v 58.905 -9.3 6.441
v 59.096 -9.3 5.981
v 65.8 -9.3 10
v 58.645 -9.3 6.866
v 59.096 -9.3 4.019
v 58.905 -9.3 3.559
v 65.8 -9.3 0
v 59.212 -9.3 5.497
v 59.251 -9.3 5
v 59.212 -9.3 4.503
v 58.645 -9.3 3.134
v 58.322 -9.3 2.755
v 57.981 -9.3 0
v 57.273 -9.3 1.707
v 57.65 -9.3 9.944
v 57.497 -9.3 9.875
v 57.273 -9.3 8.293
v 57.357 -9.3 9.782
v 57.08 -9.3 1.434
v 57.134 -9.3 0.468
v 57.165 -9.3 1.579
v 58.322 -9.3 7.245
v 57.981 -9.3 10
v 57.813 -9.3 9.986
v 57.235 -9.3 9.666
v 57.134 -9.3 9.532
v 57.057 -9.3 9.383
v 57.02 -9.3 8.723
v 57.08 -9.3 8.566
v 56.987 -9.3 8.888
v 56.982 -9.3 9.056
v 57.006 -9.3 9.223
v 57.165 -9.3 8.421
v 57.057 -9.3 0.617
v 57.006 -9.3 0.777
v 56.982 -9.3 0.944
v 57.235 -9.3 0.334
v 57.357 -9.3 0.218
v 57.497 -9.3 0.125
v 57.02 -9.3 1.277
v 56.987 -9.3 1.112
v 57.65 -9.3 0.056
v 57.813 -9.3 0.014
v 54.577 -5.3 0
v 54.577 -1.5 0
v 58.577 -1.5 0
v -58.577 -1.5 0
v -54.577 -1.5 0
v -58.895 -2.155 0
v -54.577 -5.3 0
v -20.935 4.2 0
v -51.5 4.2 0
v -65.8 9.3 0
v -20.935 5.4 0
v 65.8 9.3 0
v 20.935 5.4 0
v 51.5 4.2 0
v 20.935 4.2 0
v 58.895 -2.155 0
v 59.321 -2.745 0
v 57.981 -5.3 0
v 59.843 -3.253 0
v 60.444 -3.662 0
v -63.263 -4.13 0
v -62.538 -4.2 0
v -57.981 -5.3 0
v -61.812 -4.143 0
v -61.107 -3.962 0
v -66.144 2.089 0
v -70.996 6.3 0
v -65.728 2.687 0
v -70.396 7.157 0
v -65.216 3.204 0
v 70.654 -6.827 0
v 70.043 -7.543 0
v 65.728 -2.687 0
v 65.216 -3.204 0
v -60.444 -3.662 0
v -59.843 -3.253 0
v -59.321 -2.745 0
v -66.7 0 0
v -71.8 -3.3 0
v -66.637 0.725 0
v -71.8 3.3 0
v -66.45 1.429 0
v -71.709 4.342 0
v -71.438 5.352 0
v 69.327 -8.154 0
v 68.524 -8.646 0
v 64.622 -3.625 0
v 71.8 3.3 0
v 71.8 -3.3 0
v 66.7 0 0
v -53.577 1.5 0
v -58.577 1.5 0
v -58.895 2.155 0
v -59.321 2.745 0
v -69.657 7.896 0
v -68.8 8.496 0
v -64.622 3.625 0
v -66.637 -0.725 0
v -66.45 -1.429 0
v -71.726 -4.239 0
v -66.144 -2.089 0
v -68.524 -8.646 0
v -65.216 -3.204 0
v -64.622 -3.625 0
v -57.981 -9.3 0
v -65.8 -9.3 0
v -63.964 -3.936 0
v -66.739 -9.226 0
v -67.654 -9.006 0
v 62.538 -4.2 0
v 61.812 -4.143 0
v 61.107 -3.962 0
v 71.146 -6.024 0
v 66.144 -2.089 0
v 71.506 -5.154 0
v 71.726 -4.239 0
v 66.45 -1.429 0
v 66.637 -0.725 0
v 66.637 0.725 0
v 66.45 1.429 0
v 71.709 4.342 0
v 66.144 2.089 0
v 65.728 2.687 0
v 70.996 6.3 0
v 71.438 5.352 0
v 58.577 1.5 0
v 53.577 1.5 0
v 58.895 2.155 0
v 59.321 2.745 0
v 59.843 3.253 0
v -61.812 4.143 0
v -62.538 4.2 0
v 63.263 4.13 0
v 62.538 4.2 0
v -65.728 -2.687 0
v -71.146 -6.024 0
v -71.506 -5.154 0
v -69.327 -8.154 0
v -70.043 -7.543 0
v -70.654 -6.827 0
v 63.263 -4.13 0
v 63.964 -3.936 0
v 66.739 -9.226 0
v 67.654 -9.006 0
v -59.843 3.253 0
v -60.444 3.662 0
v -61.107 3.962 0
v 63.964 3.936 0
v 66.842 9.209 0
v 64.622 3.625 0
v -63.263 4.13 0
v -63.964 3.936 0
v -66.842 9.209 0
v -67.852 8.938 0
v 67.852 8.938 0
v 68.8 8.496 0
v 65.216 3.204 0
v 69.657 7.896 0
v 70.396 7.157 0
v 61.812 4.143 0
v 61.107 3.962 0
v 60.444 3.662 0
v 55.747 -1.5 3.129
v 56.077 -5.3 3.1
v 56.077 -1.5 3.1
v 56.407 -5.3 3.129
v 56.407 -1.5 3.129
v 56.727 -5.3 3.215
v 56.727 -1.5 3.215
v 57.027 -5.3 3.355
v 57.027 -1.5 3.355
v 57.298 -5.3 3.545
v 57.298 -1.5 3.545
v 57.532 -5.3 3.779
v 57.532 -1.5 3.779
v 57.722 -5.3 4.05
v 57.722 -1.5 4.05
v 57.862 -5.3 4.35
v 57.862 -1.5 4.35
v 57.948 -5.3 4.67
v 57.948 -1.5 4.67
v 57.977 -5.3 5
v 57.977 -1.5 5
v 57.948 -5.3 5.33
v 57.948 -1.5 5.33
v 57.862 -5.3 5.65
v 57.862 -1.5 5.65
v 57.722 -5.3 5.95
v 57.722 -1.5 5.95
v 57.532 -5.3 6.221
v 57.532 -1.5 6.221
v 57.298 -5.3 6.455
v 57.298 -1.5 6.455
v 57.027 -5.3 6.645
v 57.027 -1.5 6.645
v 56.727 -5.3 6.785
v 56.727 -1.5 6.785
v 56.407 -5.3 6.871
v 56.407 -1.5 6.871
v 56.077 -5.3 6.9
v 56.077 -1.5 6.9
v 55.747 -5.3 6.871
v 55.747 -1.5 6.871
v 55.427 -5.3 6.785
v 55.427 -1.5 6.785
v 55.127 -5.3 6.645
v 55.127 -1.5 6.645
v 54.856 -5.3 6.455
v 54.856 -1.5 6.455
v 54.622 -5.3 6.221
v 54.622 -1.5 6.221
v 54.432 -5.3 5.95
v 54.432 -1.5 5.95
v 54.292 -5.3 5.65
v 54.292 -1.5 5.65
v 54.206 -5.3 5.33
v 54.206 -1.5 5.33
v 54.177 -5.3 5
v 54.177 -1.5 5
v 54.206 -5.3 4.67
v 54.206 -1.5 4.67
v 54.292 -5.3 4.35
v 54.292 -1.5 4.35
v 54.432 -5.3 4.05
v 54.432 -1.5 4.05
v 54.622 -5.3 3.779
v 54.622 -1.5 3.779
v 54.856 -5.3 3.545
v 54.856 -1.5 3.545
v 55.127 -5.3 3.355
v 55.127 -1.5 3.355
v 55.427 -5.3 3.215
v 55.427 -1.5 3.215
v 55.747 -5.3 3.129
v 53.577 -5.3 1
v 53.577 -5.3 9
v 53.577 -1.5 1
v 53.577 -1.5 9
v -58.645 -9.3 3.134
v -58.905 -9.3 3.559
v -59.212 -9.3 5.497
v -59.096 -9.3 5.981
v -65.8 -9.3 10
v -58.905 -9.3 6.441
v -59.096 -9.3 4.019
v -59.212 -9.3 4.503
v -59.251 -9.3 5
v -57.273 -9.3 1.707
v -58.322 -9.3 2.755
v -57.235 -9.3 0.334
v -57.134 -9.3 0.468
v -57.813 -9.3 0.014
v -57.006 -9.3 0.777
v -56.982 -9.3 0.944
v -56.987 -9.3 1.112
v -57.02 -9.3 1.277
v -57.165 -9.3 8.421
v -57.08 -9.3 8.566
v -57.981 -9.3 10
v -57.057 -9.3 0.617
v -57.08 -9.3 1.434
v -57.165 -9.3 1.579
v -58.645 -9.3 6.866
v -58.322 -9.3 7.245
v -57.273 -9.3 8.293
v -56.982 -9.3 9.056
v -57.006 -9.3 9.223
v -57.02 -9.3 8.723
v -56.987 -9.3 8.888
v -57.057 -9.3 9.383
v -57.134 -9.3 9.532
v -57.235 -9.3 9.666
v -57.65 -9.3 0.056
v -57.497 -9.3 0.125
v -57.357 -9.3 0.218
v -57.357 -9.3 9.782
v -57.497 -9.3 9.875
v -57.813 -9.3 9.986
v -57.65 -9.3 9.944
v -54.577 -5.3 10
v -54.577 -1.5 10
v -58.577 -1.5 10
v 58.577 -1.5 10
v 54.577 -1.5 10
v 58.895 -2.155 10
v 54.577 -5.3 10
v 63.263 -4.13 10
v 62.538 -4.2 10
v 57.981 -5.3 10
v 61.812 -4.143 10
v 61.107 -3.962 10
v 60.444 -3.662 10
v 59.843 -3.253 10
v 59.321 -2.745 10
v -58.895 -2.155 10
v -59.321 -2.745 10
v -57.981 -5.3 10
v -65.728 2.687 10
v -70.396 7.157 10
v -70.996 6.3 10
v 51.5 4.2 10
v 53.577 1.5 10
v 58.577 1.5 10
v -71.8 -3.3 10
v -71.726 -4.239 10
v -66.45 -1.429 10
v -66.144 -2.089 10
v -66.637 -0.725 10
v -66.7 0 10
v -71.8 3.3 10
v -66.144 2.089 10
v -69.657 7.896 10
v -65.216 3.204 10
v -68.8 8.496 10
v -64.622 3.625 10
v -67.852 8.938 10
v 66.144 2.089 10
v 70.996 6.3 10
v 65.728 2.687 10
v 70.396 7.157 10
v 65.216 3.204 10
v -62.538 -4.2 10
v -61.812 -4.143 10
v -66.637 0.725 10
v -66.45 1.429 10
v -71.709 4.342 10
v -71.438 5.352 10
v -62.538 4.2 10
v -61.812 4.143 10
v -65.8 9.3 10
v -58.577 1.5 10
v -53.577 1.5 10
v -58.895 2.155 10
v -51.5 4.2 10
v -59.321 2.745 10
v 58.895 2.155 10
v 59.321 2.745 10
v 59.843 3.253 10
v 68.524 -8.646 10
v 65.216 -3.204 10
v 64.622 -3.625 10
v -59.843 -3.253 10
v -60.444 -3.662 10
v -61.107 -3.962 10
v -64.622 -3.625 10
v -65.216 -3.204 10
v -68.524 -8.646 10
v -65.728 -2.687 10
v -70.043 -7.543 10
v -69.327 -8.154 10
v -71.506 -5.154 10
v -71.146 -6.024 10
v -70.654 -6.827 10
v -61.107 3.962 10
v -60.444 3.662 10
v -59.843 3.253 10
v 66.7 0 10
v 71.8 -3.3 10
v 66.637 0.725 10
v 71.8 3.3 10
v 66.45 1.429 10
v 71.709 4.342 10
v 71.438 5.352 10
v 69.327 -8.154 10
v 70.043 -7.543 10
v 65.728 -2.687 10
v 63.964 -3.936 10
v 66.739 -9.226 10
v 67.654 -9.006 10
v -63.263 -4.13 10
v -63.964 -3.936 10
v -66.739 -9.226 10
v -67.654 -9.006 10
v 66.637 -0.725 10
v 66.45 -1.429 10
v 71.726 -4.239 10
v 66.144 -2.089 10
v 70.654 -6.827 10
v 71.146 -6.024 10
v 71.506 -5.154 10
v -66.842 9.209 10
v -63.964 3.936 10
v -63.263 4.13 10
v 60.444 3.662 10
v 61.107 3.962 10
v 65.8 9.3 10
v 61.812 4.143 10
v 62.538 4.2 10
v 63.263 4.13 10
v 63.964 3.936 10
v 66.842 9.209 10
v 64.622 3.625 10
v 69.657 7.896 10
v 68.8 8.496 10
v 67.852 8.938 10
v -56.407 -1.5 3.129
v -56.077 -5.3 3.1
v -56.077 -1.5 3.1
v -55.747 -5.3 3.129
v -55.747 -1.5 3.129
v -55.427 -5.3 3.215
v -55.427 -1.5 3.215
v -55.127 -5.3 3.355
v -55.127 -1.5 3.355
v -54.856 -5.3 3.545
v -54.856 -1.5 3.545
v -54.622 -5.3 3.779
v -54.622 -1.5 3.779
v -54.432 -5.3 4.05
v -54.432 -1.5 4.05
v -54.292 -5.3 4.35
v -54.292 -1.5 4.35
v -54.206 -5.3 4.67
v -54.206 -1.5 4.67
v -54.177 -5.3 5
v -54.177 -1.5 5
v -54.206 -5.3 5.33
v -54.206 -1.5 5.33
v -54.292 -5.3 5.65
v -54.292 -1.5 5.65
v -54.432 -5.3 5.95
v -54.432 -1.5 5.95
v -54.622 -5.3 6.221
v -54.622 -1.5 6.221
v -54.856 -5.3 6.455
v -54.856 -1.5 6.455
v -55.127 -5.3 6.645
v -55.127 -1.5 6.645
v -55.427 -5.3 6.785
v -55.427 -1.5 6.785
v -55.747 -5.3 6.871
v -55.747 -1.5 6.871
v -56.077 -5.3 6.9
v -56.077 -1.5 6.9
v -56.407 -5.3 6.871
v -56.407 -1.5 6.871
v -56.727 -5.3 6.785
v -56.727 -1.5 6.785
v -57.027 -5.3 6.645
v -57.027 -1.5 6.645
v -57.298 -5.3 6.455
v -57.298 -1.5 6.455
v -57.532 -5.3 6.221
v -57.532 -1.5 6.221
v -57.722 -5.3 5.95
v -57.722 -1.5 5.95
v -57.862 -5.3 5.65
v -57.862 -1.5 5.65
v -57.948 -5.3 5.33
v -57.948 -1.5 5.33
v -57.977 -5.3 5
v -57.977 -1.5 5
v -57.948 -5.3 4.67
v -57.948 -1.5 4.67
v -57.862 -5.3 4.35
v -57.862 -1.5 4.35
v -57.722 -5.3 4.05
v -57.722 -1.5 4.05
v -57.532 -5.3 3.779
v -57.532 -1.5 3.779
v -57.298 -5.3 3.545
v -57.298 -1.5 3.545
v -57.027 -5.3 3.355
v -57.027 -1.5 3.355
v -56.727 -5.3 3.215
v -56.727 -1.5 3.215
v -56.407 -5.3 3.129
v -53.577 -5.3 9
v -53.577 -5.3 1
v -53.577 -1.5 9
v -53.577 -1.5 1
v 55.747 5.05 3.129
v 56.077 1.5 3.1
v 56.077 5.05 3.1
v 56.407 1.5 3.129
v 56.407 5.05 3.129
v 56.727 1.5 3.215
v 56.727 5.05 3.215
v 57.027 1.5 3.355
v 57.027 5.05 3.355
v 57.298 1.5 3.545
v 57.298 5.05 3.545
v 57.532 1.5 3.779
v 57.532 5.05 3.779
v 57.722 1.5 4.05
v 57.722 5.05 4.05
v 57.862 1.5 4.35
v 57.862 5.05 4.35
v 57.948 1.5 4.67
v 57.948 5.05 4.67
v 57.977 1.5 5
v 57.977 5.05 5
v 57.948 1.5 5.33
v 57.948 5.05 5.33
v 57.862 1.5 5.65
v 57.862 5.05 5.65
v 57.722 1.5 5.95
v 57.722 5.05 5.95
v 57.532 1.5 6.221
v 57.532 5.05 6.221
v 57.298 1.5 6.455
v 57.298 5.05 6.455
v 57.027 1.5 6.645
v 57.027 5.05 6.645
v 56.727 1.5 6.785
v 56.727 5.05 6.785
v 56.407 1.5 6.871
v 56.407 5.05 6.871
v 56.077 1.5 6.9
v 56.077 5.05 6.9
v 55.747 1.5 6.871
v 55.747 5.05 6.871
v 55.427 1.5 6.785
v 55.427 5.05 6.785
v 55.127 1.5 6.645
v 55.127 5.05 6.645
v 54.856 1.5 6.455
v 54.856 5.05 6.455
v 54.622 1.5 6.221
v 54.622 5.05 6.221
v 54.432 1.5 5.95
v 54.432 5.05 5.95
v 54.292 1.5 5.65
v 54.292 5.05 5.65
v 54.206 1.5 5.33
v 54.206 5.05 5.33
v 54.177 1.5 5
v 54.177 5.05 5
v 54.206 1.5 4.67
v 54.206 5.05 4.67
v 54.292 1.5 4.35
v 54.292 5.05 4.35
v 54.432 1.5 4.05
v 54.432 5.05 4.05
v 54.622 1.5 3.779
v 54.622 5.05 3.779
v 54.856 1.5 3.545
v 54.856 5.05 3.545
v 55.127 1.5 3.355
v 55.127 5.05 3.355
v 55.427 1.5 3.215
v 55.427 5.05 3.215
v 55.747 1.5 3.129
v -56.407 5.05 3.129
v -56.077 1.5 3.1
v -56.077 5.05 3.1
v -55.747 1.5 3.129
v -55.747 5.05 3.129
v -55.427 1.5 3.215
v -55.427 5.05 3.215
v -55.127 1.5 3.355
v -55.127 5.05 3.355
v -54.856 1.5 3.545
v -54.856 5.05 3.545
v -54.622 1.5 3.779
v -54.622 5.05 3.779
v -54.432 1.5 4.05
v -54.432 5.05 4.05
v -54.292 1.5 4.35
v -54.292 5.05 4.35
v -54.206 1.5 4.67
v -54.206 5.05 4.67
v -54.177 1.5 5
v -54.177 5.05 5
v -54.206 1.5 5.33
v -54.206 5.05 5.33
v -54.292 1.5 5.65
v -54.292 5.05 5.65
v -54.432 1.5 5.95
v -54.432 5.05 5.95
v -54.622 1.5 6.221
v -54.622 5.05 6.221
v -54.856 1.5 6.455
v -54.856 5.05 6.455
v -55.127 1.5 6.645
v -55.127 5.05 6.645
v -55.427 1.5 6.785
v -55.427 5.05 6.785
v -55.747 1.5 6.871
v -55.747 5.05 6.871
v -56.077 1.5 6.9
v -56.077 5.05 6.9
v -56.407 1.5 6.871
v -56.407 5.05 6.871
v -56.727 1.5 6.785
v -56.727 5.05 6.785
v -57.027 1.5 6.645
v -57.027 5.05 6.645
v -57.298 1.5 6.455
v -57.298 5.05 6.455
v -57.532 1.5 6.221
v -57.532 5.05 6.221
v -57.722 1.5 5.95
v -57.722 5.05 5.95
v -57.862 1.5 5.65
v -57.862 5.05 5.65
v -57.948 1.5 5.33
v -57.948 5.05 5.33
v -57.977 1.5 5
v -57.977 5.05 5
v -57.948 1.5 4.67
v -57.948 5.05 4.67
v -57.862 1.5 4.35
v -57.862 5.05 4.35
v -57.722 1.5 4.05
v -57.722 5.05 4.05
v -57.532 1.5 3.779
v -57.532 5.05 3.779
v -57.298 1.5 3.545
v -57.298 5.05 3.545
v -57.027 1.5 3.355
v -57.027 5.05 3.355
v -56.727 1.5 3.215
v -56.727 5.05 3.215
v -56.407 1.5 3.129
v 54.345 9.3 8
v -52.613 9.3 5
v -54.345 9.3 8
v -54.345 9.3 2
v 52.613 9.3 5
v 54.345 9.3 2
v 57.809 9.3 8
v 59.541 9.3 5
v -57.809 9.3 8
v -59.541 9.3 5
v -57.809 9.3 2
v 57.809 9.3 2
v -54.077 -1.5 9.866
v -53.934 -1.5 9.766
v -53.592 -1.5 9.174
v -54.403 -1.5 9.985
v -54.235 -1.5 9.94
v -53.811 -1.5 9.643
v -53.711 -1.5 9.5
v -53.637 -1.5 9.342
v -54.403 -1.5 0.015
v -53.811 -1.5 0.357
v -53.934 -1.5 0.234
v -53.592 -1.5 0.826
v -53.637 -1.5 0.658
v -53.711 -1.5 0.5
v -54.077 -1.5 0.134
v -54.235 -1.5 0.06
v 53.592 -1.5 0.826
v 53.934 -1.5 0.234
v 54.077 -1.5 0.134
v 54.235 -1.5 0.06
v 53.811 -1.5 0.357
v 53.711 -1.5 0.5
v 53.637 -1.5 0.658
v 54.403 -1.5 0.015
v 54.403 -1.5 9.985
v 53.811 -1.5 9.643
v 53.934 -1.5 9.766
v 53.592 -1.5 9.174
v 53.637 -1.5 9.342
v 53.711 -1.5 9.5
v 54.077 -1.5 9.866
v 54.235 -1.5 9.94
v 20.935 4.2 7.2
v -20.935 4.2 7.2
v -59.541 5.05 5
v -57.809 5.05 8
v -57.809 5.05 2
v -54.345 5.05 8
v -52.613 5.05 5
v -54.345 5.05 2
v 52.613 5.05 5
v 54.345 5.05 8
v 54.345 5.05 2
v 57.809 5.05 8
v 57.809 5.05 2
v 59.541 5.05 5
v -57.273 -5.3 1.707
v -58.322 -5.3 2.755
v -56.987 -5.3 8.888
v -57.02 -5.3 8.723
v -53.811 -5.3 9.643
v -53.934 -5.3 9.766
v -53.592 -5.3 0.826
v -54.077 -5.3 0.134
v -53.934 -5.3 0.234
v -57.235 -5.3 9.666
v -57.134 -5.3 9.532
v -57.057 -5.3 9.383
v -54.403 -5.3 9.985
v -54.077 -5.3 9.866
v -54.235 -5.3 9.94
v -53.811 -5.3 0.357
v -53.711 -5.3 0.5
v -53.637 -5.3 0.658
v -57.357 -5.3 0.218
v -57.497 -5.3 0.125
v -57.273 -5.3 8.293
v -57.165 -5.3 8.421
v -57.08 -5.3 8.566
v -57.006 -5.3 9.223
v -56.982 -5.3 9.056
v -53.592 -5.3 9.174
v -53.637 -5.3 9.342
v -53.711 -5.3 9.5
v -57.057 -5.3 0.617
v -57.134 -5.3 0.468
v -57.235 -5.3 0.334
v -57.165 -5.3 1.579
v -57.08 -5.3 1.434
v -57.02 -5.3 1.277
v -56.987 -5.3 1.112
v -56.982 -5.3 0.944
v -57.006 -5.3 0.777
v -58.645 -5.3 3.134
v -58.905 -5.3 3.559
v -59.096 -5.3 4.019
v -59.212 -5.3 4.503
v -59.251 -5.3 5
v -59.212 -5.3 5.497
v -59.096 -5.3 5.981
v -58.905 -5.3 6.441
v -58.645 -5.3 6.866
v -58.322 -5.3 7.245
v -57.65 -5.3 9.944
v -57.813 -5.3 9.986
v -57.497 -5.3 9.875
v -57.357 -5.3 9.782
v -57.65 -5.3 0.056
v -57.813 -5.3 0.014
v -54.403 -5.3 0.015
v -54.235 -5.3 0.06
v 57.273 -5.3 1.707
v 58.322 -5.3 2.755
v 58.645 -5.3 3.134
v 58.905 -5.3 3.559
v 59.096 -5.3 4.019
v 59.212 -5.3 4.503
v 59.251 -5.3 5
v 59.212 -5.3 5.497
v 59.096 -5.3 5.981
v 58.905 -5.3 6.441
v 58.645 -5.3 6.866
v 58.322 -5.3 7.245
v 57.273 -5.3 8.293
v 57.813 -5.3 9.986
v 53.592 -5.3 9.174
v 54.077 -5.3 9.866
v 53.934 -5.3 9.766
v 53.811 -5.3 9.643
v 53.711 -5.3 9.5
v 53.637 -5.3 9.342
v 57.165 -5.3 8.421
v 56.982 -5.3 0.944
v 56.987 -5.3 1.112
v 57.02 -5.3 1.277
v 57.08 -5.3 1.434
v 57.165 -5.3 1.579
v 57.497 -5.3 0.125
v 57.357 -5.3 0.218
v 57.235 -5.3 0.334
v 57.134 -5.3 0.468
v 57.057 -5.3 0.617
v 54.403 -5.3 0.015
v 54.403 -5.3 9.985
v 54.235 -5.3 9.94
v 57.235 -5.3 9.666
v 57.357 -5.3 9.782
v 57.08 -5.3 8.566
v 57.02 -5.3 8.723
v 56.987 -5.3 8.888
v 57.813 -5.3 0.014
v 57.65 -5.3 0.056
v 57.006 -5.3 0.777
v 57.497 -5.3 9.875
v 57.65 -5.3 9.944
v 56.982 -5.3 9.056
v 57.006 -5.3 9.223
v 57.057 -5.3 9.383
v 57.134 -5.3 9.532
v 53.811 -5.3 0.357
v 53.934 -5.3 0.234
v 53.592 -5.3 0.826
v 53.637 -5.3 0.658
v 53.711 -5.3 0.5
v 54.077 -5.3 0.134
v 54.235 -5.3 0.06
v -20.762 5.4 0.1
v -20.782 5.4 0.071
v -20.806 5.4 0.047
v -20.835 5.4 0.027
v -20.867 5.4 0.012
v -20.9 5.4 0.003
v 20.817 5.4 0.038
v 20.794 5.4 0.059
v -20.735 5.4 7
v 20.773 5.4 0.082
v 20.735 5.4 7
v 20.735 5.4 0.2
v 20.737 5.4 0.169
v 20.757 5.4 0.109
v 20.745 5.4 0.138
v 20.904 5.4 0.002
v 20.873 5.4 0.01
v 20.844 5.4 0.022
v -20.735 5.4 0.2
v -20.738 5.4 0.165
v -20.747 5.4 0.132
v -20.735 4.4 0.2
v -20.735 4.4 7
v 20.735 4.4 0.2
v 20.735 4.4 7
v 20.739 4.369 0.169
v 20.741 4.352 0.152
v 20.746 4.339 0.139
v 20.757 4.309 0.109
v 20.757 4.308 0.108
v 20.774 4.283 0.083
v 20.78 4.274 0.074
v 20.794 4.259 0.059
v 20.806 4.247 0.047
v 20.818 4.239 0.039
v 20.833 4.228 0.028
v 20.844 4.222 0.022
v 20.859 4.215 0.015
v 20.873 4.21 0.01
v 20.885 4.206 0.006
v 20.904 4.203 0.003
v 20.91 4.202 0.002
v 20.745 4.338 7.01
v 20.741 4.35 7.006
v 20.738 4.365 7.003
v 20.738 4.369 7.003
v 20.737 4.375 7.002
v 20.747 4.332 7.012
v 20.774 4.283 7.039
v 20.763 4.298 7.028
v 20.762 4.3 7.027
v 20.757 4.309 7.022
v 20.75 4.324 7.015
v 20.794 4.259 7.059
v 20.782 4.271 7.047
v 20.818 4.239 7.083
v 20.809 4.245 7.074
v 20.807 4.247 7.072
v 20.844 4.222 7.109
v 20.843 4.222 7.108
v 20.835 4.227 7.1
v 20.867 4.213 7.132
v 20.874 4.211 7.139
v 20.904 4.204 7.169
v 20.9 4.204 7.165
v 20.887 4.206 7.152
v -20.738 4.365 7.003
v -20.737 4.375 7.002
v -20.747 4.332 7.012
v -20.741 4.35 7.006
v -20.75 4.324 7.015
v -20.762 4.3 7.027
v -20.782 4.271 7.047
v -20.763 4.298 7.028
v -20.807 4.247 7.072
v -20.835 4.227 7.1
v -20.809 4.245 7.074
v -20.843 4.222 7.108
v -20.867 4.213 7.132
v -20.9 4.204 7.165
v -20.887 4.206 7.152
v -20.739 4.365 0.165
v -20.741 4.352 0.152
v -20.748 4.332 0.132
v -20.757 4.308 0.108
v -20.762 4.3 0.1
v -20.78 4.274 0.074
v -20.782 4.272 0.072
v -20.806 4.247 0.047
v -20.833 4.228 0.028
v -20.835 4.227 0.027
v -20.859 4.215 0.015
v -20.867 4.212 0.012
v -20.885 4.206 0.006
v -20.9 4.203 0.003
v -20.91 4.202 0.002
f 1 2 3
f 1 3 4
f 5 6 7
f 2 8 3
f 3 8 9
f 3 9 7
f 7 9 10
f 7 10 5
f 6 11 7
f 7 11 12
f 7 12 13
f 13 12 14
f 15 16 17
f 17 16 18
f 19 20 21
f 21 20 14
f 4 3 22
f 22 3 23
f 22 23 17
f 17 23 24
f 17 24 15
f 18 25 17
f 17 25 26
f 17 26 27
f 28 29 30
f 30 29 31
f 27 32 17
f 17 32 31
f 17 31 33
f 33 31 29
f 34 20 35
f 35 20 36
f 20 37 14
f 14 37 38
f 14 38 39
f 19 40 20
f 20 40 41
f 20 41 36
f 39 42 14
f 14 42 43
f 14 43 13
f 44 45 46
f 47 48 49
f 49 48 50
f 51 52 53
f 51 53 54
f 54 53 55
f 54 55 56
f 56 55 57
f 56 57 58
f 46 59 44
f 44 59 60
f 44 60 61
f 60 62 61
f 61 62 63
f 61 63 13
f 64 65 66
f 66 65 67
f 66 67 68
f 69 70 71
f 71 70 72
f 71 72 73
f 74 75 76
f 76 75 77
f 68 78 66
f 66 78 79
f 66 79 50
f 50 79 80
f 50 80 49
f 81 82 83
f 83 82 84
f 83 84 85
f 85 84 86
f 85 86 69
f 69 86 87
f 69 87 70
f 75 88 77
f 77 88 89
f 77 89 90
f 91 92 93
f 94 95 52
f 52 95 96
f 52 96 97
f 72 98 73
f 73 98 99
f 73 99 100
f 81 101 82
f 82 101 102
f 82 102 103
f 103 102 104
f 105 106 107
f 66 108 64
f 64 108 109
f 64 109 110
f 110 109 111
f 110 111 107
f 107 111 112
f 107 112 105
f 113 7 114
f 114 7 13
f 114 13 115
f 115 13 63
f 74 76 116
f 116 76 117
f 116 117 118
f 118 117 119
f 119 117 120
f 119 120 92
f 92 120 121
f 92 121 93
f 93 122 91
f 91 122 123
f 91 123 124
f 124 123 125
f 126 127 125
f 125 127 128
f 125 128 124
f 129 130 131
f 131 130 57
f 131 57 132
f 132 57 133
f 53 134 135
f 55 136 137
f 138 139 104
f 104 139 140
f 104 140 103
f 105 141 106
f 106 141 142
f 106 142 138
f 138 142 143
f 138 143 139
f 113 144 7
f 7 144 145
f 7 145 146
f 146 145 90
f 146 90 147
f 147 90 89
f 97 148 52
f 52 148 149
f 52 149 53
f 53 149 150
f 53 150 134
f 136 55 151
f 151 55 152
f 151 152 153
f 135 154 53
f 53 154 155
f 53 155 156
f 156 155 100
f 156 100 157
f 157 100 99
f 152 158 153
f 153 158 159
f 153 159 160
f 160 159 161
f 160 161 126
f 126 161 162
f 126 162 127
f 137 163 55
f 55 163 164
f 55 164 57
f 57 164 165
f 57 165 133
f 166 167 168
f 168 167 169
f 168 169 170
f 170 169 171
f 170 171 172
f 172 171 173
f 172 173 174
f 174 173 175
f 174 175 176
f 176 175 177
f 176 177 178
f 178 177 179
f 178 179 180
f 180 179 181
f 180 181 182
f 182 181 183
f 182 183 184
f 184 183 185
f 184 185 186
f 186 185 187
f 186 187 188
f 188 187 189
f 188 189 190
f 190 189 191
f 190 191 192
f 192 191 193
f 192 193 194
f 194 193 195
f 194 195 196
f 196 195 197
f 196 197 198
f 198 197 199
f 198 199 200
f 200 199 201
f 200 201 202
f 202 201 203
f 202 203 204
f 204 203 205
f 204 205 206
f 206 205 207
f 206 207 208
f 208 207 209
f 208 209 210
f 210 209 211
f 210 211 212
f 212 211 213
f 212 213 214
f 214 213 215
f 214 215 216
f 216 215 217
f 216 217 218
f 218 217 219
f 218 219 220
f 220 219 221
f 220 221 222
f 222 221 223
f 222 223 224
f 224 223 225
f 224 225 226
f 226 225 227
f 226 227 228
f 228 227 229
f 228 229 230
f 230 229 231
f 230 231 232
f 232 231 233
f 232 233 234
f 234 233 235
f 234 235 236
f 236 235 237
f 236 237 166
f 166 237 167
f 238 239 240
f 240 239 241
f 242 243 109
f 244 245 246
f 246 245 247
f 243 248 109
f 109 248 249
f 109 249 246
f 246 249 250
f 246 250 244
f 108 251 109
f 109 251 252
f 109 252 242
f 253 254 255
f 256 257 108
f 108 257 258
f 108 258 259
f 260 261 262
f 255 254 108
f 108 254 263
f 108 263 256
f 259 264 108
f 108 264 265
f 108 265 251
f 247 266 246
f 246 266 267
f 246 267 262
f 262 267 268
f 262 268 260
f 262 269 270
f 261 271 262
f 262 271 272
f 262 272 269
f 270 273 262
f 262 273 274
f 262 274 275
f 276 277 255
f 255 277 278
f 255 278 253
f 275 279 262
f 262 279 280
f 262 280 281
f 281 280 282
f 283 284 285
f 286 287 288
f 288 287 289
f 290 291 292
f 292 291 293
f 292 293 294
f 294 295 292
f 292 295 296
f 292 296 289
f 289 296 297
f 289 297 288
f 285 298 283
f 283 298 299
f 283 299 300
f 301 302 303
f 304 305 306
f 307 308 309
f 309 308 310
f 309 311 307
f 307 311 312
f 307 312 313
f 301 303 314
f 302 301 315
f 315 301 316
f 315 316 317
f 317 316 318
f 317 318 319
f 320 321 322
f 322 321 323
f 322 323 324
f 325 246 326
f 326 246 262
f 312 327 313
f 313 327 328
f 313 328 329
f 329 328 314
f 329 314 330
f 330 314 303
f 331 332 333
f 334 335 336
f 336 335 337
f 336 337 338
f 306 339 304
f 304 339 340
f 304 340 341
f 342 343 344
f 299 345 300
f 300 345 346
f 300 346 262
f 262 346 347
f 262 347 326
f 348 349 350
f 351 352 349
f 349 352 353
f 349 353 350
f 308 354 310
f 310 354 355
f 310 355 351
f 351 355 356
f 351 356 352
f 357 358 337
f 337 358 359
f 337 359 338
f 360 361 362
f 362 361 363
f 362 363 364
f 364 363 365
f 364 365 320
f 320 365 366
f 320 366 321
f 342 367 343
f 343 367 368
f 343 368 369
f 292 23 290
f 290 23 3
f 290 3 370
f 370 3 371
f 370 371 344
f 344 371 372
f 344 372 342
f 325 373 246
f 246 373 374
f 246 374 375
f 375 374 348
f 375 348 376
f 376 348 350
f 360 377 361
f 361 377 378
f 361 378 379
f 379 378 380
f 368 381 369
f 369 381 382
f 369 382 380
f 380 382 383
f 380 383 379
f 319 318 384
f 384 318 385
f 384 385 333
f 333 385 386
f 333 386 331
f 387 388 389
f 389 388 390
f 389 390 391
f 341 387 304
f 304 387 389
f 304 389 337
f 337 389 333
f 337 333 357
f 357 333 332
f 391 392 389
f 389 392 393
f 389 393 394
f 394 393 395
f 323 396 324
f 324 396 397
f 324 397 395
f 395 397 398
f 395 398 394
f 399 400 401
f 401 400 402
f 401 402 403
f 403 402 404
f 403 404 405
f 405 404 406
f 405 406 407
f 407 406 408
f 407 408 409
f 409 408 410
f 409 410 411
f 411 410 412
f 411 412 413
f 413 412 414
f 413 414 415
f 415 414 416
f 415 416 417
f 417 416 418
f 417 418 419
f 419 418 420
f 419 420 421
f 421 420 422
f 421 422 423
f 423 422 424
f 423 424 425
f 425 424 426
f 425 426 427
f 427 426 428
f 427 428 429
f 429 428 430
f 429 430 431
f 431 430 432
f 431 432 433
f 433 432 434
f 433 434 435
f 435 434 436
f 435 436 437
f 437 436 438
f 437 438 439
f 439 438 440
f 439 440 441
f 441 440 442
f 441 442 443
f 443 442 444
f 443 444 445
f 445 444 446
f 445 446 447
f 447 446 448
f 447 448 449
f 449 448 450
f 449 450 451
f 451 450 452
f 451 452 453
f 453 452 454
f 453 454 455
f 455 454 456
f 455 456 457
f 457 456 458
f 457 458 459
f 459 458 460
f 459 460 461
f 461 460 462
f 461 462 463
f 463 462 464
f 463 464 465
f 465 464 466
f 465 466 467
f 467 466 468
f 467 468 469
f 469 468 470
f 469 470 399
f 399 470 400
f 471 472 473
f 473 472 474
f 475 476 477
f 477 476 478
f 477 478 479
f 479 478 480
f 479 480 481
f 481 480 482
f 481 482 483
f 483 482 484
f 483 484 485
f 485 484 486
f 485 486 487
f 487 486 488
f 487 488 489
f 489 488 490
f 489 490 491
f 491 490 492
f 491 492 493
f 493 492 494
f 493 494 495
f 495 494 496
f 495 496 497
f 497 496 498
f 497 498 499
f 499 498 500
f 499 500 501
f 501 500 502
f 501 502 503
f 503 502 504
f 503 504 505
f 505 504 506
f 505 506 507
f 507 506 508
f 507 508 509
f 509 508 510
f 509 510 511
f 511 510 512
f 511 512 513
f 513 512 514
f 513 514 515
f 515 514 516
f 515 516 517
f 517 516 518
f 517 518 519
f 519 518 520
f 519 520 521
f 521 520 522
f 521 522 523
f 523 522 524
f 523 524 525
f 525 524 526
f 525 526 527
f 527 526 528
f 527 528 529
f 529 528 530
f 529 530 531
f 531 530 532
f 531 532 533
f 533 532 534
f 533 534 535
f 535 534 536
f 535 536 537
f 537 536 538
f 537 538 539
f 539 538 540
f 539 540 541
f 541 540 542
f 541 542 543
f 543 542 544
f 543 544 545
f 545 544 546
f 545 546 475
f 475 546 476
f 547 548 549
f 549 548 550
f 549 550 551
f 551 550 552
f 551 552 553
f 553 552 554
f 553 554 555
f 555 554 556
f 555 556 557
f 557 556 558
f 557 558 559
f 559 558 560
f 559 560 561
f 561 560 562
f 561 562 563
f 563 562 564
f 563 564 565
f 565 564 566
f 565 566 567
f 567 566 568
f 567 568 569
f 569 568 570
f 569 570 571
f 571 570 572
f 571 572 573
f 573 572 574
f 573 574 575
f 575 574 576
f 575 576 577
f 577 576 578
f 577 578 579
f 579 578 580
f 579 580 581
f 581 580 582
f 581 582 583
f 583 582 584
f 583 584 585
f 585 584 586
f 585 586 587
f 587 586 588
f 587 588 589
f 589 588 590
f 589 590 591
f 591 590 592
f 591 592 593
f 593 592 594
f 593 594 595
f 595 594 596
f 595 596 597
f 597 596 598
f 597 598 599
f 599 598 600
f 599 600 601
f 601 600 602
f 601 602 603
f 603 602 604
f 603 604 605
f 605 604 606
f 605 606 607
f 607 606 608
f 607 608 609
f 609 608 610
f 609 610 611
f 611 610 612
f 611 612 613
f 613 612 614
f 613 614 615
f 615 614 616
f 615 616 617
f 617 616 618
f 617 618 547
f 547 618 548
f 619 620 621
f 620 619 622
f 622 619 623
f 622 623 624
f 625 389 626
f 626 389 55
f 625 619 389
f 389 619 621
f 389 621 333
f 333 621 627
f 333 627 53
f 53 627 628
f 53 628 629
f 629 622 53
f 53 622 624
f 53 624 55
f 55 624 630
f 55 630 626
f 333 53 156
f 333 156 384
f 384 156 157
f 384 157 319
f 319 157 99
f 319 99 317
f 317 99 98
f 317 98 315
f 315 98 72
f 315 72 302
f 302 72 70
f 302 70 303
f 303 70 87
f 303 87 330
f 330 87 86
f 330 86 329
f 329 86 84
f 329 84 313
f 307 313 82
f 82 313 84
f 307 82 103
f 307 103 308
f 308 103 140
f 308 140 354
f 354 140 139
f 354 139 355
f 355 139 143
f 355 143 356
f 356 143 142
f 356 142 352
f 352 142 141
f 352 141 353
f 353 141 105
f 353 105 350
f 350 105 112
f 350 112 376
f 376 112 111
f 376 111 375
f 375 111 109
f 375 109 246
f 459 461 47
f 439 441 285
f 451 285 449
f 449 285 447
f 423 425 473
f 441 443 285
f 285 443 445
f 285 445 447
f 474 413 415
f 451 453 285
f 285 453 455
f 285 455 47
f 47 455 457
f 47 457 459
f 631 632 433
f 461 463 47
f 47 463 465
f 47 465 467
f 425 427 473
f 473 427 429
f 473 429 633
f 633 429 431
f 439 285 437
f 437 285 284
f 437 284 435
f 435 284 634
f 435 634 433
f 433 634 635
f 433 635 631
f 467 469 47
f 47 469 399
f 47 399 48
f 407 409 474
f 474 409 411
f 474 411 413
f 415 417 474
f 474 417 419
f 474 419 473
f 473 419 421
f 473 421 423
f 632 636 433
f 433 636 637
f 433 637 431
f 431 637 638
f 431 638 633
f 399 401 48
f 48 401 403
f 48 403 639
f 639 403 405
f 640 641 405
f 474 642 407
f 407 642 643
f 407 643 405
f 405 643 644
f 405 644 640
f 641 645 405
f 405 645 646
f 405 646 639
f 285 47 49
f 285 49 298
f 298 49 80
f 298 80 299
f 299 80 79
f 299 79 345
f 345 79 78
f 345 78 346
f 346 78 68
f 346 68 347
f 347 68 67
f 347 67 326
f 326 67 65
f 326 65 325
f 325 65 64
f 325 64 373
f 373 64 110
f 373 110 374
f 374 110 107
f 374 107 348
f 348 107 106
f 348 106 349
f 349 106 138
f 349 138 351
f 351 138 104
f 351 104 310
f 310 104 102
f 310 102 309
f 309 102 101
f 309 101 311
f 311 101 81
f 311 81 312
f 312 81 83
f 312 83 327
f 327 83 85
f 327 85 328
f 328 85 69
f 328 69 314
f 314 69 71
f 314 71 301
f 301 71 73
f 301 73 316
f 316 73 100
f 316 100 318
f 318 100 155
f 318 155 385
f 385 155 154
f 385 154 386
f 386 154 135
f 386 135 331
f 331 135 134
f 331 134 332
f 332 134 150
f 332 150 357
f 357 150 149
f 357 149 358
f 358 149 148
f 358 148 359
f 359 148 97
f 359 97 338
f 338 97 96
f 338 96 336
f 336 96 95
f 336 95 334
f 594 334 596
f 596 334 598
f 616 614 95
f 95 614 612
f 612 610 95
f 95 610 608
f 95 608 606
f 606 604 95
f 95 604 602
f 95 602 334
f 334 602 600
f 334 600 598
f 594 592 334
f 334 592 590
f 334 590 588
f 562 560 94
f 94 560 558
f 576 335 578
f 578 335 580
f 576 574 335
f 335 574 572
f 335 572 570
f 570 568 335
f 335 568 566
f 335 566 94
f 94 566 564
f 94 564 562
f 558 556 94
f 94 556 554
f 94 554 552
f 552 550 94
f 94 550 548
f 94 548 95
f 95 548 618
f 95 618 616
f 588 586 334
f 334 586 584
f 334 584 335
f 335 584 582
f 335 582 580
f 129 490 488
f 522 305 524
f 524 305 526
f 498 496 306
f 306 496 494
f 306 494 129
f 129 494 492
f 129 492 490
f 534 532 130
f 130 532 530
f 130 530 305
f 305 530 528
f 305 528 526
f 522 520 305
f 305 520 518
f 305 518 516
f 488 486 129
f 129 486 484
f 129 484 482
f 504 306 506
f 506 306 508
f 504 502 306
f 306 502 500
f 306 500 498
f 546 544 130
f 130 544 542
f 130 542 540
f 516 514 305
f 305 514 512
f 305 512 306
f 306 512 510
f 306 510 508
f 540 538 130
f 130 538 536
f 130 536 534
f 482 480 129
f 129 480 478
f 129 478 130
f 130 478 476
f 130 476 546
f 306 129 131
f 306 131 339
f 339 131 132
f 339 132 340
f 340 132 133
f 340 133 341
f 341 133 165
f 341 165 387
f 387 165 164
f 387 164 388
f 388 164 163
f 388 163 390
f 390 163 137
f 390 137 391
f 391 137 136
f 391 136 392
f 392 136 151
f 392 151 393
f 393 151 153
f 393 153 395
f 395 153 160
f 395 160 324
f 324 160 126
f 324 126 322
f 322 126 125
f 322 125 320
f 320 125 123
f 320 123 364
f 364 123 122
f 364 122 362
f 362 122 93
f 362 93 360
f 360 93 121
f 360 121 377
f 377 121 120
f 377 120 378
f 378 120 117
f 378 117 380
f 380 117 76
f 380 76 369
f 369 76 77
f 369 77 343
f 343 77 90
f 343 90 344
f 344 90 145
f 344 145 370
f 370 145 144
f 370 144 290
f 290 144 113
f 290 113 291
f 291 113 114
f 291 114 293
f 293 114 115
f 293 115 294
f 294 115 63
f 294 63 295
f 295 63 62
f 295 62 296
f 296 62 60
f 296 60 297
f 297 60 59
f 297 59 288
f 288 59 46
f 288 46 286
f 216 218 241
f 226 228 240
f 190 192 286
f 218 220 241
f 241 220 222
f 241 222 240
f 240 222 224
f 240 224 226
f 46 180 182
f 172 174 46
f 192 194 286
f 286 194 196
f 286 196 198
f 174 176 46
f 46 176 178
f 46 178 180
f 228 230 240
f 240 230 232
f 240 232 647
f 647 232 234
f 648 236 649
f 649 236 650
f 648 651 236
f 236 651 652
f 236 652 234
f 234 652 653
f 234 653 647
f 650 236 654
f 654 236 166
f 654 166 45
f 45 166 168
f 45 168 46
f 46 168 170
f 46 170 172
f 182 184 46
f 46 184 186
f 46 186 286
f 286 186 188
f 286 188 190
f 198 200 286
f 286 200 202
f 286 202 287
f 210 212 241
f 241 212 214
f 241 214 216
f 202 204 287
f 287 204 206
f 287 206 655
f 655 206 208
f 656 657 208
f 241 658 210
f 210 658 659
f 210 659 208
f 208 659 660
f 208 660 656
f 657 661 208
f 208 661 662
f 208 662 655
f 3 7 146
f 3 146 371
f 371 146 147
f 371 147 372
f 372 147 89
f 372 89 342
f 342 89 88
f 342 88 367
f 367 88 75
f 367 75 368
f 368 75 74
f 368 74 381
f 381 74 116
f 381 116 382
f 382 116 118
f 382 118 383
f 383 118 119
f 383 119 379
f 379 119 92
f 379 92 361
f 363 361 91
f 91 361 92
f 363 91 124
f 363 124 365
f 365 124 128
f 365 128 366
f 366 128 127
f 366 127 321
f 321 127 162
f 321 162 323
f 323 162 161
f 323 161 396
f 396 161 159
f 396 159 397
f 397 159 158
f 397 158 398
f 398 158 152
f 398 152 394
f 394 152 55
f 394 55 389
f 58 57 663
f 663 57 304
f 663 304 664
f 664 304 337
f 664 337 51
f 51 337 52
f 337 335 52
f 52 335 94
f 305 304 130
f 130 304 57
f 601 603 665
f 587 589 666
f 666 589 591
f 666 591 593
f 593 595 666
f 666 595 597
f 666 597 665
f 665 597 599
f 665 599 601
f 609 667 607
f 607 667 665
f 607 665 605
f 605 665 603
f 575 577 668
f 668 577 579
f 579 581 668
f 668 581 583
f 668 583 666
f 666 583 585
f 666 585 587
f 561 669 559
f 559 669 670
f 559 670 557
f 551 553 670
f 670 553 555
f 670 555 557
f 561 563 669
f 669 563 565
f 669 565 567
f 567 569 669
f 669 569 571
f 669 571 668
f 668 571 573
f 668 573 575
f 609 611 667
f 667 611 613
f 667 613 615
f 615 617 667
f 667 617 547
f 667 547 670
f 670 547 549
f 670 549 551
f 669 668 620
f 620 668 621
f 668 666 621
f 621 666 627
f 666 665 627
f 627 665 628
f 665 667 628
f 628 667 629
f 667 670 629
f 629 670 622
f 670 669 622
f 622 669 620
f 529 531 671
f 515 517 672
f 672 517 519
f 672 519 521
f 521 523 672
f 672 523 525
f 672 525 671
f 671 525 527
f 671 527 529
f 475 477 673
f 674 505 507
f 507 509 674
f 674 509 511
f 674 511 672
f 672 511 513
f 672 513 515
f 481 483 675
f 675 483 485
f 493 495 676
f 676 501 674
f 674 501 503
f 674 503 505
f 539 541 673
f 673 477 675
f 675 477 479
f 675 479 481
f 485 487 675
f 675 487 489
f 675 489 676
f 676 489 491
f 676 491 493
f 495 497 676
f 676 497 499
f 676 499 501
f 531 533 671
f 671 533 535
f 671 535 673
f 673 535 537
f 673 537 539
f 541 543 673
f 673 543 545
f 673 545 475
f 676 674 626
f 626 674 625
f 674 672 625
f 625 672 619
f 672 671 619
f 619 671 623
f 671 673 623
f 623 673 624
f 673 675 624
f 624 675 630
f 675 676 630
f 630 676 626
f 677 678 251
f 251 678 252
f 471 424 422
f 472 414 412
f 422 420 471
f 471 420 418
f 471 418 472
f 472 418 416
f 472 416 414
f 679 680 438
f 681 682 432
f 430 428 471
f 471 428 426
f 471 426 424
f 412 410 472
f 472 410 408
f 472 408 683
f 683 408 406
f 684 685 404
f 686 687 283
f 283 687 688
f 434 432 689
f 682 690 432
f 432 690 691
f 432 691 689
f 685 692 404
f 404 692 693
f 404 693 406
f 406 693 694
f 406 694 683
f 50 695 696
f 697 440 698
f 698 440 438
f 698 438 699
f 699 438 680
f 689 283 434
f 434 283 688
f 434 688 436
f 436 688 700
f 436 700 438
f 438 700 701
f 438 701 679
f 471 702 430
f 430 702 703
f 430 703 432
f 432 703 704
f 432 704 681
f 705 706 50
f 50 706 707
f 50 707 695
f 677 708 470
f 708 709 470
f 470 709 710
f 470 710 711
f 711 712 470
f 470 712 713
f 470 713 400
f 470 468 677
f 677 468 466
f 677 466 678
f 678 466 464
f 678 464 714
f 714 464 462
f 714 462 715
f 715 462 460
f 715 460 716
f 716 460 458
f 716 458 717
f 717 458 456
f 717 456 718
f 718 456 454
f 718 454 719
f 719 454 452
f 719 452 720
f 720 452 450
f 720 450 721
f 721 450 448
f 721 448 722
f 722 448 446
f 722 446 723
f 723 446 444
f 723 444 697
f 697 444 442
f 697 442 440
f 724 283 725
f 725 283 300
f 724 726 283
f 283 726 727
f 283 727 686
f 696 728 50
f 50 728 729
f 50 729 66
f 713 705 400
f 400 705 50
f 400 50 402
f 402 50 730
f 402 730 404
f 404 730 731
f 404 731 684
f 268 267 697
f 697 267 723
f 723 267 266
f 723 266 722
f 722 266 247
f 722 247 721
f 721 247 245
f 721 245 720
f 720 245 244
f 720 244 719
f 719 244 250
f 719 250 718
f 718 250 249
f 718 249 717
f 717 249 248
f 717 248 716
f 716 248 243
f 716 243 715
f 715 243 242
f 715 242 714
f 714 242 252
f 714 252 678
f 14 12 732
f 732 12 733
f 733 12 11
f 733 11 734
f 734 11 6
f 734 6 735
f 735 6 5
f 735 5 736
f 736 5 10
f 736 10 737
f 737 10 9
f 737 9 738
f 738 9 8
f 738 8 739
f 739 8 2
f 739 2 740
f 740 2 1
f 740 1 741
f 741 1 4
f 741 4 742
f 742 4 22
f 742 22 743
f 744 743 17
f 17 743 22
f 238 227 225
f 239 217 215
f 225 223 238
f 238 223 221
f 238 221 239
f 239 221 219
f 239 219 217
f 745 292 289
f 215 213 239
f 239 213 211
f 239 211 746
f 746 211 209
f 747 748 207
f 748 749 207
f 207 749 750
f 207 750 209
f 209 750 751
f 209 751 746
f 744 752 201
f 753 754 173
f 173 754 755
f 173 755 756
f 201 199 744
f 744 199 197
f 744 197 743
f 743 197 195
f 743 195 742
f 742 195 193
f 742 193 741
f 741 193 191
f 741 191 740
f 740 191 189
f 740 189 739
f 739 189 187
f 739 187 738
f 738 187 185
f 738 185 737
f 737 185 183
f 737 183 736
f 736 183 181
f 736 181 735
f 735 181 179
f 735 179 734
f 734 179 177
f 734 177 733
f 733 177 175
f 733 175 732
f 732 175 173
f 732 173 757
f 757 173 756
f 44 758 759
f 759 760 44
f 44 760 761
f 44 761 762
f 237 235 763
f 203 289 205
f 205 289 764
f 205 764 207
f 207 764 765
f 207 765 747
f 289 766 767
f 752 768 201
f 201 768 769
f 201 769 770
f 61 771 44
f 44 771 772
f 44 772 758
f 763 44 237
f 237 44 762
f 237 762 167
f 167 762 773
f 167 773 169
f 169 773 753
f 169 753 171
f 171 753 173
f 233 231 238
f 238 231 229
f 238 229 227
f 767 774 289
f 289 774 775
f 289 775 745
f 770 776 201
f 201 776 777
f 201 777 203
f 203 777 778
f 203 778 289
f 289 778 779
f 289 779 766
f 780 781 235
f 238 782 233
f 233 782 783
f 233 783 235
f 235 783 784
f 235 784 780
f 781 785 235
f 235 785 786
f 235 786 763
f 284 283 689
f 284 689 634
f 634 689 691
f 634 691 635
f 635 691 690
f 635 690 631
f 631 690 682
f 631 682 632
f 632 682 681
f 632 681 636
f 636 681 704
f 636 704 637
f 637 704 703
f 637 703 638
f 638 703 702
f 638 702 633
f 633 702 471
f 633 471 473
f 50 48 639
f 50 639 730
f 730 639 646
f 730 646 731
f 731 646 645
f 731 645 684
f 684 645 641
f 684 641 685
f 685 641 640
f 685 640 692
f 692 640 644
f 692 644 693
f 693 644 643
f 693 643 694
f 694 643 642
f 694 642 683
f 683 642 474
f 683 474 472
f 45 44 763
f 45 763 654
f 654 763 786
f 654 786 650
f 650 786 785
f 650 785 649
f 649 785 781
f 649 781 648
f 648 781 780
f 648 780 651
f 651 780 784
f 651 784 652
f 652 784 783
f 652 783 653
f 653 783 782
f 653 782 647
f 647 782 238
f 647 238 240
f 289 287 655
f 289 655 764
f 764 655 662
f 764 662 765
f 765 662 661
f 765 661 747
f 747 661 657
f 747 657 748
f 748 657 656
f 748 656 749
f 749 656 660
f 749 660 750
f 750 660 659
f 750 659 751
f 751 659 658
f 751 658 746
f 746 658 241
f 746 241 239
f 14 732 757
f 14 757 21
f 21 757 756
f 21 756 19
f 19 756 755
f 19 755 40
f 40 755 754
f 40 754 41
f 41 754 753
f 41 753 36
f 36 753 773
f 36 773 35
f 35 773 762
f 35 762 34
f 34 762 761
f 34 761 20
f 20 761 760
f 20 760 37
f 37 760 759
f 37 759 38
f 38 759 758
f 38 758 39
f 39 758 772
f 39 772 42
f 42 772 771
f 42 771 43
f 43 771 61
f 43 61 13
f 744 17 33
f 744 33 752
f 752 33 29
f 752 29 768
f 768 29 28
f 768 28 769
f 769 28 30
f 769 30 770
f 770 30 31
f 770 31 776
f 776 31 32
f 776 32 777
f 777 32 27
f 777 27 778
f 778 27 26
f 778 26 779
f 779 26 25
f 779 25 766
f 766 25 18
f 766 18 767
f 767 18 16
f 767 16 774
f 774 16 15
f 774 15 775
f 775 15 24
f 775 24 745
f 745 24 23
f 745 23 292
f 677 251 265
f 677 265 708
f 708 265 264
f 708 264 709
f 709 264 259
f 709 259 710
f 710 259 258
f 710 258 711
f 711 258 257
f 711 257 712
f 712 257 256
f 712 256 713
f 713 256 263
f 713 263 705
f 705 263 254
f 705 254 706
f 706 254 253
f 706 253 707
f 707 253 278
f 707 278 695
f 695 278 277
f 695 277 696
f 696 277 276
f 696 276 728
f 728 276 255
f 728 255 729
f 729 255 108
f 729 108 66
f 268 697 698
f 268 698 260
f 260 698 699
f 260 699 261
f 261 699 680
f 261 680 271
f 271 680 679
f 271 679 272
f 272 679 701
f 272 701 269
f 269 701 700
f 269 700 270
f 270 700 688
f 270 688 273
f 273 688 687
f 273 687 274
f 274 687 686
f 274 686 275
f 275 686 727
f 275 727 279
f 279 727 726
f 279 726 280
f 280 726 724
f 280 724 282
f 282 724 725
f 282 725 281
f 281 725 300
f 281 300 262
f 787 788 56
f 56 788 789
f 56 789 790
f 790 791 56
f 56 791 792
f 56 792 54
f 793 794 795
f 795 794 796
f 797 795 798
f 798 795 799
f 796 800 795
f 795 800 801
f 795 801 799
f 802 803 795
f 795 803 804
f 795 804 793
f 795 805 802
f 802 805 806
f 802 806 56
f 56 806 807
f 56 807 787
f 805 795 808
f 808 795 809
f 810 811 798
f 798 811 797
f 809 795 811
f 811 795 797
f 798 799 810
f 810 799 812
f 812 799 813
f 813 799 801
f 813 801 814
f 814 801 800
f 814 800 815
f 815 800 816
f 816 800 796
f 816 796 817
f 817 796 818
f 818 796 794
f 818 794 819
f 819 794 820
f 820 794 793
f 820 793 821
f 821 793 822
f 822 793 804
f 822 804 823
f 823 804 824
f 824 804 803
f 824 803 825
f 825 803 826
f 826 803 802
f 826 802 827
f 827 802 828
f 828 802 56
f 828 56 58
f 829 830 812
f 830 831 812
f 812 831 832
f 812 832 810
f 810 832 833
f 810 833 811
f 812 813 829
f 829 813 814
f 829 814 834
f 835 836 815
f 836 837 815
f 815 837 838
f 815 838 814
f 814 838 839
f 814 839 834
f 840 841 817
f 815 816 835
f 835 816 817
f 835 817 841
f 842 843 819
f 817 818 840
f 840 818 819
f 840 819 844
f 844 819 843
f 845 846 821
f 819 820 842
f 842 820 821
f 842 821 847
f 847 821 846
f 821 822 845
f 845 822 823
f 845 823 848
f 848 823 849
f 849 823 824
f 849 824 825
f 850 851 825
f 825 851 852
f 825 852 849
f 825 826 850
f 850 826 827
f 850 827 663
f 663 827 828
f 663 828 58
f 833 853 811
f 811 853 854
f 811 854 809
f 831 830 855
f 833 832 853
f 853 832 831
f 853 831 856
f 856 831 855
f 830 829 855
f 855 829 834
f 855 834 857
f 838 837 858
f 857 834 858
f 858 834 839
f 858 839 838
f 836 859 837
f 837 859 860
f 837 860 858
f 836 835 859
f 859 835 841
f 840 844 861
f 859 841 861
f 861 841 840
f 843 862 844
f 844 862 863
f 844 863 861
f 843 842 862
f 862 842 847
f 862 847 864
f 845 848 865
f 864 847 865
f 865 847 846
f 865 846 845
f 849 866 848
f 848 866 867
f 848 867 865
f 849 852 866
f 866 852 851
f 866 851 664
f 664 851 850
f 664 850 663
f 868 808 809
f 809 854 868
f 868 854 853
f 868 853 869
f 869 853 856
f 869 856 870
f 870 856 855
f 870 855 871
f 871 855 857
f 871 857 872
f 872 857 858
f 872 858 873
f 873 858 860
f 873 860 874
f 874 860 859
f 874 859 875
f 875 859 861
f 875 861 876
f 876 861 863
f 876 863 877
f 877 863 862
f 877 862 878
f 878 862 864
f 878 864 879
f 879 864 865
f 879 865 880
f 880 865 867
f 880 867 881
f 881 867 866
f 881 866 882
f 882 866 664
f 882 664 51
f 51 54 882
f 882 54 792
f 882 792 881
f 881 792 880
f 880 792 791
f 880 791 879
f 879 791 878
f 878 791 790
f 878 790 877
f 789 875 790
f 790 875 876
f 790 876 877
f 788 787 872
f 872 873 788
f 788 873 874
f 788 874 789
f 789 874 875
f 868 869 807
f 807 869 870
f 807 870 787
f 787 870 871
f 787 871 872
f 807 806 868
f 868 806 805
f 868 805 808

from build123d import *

# Parameters (mm, degrees)
SALIENTE_EXTRUIR1_DEPTH = 10
CROQUIS2_R              = 1.9
CORTAR_EXTRUIR1_DEPTH   = 25
CORTAR_EXTRUIR5_DEPTH   = 74.087139772
CROQUIS8_W              = 5.376990951
CROQUIS8_H              = 7.8
CORTAR_EXTRUIR6_DEPTH   = 74.087139772
CORTAR_EXTRUIR7_DEPTH   = 4.25
CROQUIS10_R             = 1.9
CORTAR_EXTRUIR8_DEPTH   = 4
REDONDEO1_R             = 1
CROQUIS11_W             = 41.47
CROQUIS11_H             = 14
CORTAR_EXTRUIR9_DEPTH   = 1.2
REDONDEO2_R             = 0.2


with BuildPart() as part:
    # Croquis1 → Saliente-Extruir1 (new body)
    with BuildSketch(Plane.XY):
        with BuildLine():
            Line((65.8, 9.3), (-65.8, 9.3))
            ThreePointArc((-65.8, 9.3), (-70.042640687, 7.542640687), (-71.8, 3.3))
            Line((-71.8, 3.3), (-71.8, -3.3))
            ThreePointArc((-71.8, -3.3), (-70.042640687, -7.542640687), (-65.8, -9.3))
            Line((-65.8, -9.3), (-48.2, -9.3))
            Line((-48.2, -9.3), (-48.2, -1.5))
            Line((-48.2, -1.5), (-58.576990951, -1.5))
            ThreePointArc((-58.576990951, -1.5), (-66.7, 0), (-58.576990951, 1.5))
            Line((-58.576990951, 1.5), (-46.2, 1.5))
            Line((-46.2, 1.5), (-46.2, -9.3))
            Line((-46.2, -9.3), (46.2, -9.3))
            Line((46.2, -9.3), (46.2, 1.5))
            Line((46.2, 1.5), (58.576990951, 1.5))
            ThreePointArc((58.576990951, 1.5), (63.26268014, 4.130171789), (66.7, 0))
            ThreePointArc((66.7, 0), (63.26268014, -4.130171789), (58.576990951, -1.5))
            Line((58.576990951, -1.5), (48.2, -1.5))
            Line((48.2, -1.5), (48.2, -9.3))
            Line((48.2, -9.3), (65.8, -9.3))
            ThreePointArc((65.8, -9.3), (70.042640687, -7.542640687), (71.8, -3.3))
            Line((71.8, -3.3), (71.8, 3.3))
            ThreePointArc((71.8, 3.3), (70.042640687, 7.542640687), (65.8, 9.3))
        make_face()
    extrude(amount=SALIENTE_EXTRUIR1_DEPTH)

    # Croquis2 → Cortar-Extruir1 (cut, symmetric)
    with BuildSketch(Plane.XZ.offset(-1.5)):
        with Locations(Location((-56.076990951, 5, 0), (0, 0, 180))):
            Circle(CROQUIS2_R)
        with Locations(Location((56.076990951, 5, 0), (0, 0, 180))):
            Circle(CROQUIS2_R)
    extrude(amount=CORTAR_EXTRUIR1_DEPTH, both=True, mode=Mode.SUBTRACT)

    # Croquis7 → Cortar-Extruir5 (cut, through all)
    with BuildSketch(Plane(origin=(0, 0, 0), x_dir=(-1, 0, 0), z_dir=(0, 0, -1))):
        Polygon((51.5, 4.2), (53.576990951, 1.5), (46.2, 1.5), (46.2, -9.3), (-46.2, -9.3), (-46.2, 1.5), (-53.576990951, 1.5), (-51.5, 4.2), align=None)
    extrude(amount=-CORTAR_EXTRUIR5_DEPTH, mode=Mode.SUBTRACT)

    # Croquis8 → Cortar-Extruir6 (cut, through all)
    with BuildSketch(Plane(origin=(0, 0, 0), x_dir=(-1, 0, 0), z_dir=(0, 0, -1))):
        with Locations((50.888495476, -5.4)):
            Rectangle(CROQUIS8_W, CROQUIS8_H)
        with Locations((-50.888495476, -5.4)):
            Rectangle(CROQUIS8_W, CROQUIS8_H)
    extrude(amount=-CORTAR_EXTRUIR6_DEPTH, mode=Mode.SUBTRACT)

    # Croquis5 → Cortar-Extruir7 (cut)
    with BuildSketch(Plane(origin=(0, 9.3, 0), x_dir=(1, 0, 0), z_dir=(0, 1, 0))):
        Polygon((-52.612889336, -5), (-54.344940143, -2), (-57.809041758, -2), (-59.541092566, -5), (-57.809041758, -8), (-54.344940143, -8), align=None)
        Polygon((59.541092566, -5), (57.809041758, -2), (54.344940143, -2), (52.612889336, -5), (54.344940143, -8), (57.809041758, -8), align=None)
    extrude(amount=-CORTAR_EXTRUIR7_DEPTH, mode=Mode.SUBTRACT)

    # Croquis10 → Cortar-Extruir8 (cut)
    # profile 1 of 2: a face of its own
    with BuildSketch(Plane.XZ.offset(9.3)):
        with BuildLine():
            Line((-53.576990951, 10), (-55.566305742, 10))
            Line((-55.566305742, 10), (-58.321648346, 7.244657395))
            ThreePointArc((-58.321648346, 7.244657395), (-59.251415882, 5), (-58.321648346, 2.755342605))
            Line((-58.321648346, 2.755342605), (-55.566305742, 0))
            Line((-55.566305742, 0), (-53.576990951, 0))
            Line((-53.576990951, 0), (-53.576990951, 10))
        make_face()
        with Locations((-56.076990951, 5)):
            Circle(CROQUIS10_R, mode=Mode.SUBTRACT)
    # profile 2 of 2: a face of its own
    with BuildSketch(Plane.XZ.offset(9.3)):
        with BuildLine():
            Line((58.321648346, 7.244657395), (55.566305742, 10))
            Line((55.566305742, 10), (53.576990951, 10))
            Line((53.576990951, 10), (53.576990951, 0))
            Line((53.576990951, 0), (55.566305742, 0))
            Line((55.566305742, 0), (58.321648346, 2.755342605))
            ThreePointArc((58.321648346, 2.755342605), (59.251415882, 5), (58.321648346, 7.244657395))
        make_face()
        with Locations((56.076990951, 5)):
            Circle(CROQUIS10_R, mode=Mode.SUBTRACT)
    extrude(amount=-CORTAR_EXTRUIR8_DEPTH, mode=Mode.SUBTRACT)

    # Redondeo1
    redondeo1_edges = [part.edges().sort_by_distance(p)[0] for p in [
        (53.576990951, -3.4, 10),
        (53.576990951, -3.4, 0),
        (-53.576990951, -3.4, 0),
        (-53.576990951, -3.4, 10),
        (-55.566305742, -7.3, 0),
        (-55.566305742, -7.3, 10),
        (55.566305742, -7.3, 0),
        (55.566305742, -7.3, 10),
    ]]
    fillet(redondeo1_edges, radius=REDONDEO1_R)

    # Croquis11 → Cortar-Extruir9 (cut)
    with BuildSketch(Plane.XZ.offset(-4.2)):
        Rectangle(CROQUIS11_W, CROQUIS11_H)
    extrude(amount=-CORTAR_EXTRUIR9_DEPTH, mode=Mode.SUBTRACT)

    # Redondeo2
    redondeo2_edges = [part.edges().sort_by_distance(p)[0] for p in [
        (20.735, 4.2, 3.5),
        (-20.735, 4.2, 3.5),
        (0, 4.2, 7),
        (-20.735, 4.8, 0),
        (20.735, 4.8, 0),
    ]]
    fillet(redondeo2_edges, radius=REDONDEO2_R)


solid = part.part
